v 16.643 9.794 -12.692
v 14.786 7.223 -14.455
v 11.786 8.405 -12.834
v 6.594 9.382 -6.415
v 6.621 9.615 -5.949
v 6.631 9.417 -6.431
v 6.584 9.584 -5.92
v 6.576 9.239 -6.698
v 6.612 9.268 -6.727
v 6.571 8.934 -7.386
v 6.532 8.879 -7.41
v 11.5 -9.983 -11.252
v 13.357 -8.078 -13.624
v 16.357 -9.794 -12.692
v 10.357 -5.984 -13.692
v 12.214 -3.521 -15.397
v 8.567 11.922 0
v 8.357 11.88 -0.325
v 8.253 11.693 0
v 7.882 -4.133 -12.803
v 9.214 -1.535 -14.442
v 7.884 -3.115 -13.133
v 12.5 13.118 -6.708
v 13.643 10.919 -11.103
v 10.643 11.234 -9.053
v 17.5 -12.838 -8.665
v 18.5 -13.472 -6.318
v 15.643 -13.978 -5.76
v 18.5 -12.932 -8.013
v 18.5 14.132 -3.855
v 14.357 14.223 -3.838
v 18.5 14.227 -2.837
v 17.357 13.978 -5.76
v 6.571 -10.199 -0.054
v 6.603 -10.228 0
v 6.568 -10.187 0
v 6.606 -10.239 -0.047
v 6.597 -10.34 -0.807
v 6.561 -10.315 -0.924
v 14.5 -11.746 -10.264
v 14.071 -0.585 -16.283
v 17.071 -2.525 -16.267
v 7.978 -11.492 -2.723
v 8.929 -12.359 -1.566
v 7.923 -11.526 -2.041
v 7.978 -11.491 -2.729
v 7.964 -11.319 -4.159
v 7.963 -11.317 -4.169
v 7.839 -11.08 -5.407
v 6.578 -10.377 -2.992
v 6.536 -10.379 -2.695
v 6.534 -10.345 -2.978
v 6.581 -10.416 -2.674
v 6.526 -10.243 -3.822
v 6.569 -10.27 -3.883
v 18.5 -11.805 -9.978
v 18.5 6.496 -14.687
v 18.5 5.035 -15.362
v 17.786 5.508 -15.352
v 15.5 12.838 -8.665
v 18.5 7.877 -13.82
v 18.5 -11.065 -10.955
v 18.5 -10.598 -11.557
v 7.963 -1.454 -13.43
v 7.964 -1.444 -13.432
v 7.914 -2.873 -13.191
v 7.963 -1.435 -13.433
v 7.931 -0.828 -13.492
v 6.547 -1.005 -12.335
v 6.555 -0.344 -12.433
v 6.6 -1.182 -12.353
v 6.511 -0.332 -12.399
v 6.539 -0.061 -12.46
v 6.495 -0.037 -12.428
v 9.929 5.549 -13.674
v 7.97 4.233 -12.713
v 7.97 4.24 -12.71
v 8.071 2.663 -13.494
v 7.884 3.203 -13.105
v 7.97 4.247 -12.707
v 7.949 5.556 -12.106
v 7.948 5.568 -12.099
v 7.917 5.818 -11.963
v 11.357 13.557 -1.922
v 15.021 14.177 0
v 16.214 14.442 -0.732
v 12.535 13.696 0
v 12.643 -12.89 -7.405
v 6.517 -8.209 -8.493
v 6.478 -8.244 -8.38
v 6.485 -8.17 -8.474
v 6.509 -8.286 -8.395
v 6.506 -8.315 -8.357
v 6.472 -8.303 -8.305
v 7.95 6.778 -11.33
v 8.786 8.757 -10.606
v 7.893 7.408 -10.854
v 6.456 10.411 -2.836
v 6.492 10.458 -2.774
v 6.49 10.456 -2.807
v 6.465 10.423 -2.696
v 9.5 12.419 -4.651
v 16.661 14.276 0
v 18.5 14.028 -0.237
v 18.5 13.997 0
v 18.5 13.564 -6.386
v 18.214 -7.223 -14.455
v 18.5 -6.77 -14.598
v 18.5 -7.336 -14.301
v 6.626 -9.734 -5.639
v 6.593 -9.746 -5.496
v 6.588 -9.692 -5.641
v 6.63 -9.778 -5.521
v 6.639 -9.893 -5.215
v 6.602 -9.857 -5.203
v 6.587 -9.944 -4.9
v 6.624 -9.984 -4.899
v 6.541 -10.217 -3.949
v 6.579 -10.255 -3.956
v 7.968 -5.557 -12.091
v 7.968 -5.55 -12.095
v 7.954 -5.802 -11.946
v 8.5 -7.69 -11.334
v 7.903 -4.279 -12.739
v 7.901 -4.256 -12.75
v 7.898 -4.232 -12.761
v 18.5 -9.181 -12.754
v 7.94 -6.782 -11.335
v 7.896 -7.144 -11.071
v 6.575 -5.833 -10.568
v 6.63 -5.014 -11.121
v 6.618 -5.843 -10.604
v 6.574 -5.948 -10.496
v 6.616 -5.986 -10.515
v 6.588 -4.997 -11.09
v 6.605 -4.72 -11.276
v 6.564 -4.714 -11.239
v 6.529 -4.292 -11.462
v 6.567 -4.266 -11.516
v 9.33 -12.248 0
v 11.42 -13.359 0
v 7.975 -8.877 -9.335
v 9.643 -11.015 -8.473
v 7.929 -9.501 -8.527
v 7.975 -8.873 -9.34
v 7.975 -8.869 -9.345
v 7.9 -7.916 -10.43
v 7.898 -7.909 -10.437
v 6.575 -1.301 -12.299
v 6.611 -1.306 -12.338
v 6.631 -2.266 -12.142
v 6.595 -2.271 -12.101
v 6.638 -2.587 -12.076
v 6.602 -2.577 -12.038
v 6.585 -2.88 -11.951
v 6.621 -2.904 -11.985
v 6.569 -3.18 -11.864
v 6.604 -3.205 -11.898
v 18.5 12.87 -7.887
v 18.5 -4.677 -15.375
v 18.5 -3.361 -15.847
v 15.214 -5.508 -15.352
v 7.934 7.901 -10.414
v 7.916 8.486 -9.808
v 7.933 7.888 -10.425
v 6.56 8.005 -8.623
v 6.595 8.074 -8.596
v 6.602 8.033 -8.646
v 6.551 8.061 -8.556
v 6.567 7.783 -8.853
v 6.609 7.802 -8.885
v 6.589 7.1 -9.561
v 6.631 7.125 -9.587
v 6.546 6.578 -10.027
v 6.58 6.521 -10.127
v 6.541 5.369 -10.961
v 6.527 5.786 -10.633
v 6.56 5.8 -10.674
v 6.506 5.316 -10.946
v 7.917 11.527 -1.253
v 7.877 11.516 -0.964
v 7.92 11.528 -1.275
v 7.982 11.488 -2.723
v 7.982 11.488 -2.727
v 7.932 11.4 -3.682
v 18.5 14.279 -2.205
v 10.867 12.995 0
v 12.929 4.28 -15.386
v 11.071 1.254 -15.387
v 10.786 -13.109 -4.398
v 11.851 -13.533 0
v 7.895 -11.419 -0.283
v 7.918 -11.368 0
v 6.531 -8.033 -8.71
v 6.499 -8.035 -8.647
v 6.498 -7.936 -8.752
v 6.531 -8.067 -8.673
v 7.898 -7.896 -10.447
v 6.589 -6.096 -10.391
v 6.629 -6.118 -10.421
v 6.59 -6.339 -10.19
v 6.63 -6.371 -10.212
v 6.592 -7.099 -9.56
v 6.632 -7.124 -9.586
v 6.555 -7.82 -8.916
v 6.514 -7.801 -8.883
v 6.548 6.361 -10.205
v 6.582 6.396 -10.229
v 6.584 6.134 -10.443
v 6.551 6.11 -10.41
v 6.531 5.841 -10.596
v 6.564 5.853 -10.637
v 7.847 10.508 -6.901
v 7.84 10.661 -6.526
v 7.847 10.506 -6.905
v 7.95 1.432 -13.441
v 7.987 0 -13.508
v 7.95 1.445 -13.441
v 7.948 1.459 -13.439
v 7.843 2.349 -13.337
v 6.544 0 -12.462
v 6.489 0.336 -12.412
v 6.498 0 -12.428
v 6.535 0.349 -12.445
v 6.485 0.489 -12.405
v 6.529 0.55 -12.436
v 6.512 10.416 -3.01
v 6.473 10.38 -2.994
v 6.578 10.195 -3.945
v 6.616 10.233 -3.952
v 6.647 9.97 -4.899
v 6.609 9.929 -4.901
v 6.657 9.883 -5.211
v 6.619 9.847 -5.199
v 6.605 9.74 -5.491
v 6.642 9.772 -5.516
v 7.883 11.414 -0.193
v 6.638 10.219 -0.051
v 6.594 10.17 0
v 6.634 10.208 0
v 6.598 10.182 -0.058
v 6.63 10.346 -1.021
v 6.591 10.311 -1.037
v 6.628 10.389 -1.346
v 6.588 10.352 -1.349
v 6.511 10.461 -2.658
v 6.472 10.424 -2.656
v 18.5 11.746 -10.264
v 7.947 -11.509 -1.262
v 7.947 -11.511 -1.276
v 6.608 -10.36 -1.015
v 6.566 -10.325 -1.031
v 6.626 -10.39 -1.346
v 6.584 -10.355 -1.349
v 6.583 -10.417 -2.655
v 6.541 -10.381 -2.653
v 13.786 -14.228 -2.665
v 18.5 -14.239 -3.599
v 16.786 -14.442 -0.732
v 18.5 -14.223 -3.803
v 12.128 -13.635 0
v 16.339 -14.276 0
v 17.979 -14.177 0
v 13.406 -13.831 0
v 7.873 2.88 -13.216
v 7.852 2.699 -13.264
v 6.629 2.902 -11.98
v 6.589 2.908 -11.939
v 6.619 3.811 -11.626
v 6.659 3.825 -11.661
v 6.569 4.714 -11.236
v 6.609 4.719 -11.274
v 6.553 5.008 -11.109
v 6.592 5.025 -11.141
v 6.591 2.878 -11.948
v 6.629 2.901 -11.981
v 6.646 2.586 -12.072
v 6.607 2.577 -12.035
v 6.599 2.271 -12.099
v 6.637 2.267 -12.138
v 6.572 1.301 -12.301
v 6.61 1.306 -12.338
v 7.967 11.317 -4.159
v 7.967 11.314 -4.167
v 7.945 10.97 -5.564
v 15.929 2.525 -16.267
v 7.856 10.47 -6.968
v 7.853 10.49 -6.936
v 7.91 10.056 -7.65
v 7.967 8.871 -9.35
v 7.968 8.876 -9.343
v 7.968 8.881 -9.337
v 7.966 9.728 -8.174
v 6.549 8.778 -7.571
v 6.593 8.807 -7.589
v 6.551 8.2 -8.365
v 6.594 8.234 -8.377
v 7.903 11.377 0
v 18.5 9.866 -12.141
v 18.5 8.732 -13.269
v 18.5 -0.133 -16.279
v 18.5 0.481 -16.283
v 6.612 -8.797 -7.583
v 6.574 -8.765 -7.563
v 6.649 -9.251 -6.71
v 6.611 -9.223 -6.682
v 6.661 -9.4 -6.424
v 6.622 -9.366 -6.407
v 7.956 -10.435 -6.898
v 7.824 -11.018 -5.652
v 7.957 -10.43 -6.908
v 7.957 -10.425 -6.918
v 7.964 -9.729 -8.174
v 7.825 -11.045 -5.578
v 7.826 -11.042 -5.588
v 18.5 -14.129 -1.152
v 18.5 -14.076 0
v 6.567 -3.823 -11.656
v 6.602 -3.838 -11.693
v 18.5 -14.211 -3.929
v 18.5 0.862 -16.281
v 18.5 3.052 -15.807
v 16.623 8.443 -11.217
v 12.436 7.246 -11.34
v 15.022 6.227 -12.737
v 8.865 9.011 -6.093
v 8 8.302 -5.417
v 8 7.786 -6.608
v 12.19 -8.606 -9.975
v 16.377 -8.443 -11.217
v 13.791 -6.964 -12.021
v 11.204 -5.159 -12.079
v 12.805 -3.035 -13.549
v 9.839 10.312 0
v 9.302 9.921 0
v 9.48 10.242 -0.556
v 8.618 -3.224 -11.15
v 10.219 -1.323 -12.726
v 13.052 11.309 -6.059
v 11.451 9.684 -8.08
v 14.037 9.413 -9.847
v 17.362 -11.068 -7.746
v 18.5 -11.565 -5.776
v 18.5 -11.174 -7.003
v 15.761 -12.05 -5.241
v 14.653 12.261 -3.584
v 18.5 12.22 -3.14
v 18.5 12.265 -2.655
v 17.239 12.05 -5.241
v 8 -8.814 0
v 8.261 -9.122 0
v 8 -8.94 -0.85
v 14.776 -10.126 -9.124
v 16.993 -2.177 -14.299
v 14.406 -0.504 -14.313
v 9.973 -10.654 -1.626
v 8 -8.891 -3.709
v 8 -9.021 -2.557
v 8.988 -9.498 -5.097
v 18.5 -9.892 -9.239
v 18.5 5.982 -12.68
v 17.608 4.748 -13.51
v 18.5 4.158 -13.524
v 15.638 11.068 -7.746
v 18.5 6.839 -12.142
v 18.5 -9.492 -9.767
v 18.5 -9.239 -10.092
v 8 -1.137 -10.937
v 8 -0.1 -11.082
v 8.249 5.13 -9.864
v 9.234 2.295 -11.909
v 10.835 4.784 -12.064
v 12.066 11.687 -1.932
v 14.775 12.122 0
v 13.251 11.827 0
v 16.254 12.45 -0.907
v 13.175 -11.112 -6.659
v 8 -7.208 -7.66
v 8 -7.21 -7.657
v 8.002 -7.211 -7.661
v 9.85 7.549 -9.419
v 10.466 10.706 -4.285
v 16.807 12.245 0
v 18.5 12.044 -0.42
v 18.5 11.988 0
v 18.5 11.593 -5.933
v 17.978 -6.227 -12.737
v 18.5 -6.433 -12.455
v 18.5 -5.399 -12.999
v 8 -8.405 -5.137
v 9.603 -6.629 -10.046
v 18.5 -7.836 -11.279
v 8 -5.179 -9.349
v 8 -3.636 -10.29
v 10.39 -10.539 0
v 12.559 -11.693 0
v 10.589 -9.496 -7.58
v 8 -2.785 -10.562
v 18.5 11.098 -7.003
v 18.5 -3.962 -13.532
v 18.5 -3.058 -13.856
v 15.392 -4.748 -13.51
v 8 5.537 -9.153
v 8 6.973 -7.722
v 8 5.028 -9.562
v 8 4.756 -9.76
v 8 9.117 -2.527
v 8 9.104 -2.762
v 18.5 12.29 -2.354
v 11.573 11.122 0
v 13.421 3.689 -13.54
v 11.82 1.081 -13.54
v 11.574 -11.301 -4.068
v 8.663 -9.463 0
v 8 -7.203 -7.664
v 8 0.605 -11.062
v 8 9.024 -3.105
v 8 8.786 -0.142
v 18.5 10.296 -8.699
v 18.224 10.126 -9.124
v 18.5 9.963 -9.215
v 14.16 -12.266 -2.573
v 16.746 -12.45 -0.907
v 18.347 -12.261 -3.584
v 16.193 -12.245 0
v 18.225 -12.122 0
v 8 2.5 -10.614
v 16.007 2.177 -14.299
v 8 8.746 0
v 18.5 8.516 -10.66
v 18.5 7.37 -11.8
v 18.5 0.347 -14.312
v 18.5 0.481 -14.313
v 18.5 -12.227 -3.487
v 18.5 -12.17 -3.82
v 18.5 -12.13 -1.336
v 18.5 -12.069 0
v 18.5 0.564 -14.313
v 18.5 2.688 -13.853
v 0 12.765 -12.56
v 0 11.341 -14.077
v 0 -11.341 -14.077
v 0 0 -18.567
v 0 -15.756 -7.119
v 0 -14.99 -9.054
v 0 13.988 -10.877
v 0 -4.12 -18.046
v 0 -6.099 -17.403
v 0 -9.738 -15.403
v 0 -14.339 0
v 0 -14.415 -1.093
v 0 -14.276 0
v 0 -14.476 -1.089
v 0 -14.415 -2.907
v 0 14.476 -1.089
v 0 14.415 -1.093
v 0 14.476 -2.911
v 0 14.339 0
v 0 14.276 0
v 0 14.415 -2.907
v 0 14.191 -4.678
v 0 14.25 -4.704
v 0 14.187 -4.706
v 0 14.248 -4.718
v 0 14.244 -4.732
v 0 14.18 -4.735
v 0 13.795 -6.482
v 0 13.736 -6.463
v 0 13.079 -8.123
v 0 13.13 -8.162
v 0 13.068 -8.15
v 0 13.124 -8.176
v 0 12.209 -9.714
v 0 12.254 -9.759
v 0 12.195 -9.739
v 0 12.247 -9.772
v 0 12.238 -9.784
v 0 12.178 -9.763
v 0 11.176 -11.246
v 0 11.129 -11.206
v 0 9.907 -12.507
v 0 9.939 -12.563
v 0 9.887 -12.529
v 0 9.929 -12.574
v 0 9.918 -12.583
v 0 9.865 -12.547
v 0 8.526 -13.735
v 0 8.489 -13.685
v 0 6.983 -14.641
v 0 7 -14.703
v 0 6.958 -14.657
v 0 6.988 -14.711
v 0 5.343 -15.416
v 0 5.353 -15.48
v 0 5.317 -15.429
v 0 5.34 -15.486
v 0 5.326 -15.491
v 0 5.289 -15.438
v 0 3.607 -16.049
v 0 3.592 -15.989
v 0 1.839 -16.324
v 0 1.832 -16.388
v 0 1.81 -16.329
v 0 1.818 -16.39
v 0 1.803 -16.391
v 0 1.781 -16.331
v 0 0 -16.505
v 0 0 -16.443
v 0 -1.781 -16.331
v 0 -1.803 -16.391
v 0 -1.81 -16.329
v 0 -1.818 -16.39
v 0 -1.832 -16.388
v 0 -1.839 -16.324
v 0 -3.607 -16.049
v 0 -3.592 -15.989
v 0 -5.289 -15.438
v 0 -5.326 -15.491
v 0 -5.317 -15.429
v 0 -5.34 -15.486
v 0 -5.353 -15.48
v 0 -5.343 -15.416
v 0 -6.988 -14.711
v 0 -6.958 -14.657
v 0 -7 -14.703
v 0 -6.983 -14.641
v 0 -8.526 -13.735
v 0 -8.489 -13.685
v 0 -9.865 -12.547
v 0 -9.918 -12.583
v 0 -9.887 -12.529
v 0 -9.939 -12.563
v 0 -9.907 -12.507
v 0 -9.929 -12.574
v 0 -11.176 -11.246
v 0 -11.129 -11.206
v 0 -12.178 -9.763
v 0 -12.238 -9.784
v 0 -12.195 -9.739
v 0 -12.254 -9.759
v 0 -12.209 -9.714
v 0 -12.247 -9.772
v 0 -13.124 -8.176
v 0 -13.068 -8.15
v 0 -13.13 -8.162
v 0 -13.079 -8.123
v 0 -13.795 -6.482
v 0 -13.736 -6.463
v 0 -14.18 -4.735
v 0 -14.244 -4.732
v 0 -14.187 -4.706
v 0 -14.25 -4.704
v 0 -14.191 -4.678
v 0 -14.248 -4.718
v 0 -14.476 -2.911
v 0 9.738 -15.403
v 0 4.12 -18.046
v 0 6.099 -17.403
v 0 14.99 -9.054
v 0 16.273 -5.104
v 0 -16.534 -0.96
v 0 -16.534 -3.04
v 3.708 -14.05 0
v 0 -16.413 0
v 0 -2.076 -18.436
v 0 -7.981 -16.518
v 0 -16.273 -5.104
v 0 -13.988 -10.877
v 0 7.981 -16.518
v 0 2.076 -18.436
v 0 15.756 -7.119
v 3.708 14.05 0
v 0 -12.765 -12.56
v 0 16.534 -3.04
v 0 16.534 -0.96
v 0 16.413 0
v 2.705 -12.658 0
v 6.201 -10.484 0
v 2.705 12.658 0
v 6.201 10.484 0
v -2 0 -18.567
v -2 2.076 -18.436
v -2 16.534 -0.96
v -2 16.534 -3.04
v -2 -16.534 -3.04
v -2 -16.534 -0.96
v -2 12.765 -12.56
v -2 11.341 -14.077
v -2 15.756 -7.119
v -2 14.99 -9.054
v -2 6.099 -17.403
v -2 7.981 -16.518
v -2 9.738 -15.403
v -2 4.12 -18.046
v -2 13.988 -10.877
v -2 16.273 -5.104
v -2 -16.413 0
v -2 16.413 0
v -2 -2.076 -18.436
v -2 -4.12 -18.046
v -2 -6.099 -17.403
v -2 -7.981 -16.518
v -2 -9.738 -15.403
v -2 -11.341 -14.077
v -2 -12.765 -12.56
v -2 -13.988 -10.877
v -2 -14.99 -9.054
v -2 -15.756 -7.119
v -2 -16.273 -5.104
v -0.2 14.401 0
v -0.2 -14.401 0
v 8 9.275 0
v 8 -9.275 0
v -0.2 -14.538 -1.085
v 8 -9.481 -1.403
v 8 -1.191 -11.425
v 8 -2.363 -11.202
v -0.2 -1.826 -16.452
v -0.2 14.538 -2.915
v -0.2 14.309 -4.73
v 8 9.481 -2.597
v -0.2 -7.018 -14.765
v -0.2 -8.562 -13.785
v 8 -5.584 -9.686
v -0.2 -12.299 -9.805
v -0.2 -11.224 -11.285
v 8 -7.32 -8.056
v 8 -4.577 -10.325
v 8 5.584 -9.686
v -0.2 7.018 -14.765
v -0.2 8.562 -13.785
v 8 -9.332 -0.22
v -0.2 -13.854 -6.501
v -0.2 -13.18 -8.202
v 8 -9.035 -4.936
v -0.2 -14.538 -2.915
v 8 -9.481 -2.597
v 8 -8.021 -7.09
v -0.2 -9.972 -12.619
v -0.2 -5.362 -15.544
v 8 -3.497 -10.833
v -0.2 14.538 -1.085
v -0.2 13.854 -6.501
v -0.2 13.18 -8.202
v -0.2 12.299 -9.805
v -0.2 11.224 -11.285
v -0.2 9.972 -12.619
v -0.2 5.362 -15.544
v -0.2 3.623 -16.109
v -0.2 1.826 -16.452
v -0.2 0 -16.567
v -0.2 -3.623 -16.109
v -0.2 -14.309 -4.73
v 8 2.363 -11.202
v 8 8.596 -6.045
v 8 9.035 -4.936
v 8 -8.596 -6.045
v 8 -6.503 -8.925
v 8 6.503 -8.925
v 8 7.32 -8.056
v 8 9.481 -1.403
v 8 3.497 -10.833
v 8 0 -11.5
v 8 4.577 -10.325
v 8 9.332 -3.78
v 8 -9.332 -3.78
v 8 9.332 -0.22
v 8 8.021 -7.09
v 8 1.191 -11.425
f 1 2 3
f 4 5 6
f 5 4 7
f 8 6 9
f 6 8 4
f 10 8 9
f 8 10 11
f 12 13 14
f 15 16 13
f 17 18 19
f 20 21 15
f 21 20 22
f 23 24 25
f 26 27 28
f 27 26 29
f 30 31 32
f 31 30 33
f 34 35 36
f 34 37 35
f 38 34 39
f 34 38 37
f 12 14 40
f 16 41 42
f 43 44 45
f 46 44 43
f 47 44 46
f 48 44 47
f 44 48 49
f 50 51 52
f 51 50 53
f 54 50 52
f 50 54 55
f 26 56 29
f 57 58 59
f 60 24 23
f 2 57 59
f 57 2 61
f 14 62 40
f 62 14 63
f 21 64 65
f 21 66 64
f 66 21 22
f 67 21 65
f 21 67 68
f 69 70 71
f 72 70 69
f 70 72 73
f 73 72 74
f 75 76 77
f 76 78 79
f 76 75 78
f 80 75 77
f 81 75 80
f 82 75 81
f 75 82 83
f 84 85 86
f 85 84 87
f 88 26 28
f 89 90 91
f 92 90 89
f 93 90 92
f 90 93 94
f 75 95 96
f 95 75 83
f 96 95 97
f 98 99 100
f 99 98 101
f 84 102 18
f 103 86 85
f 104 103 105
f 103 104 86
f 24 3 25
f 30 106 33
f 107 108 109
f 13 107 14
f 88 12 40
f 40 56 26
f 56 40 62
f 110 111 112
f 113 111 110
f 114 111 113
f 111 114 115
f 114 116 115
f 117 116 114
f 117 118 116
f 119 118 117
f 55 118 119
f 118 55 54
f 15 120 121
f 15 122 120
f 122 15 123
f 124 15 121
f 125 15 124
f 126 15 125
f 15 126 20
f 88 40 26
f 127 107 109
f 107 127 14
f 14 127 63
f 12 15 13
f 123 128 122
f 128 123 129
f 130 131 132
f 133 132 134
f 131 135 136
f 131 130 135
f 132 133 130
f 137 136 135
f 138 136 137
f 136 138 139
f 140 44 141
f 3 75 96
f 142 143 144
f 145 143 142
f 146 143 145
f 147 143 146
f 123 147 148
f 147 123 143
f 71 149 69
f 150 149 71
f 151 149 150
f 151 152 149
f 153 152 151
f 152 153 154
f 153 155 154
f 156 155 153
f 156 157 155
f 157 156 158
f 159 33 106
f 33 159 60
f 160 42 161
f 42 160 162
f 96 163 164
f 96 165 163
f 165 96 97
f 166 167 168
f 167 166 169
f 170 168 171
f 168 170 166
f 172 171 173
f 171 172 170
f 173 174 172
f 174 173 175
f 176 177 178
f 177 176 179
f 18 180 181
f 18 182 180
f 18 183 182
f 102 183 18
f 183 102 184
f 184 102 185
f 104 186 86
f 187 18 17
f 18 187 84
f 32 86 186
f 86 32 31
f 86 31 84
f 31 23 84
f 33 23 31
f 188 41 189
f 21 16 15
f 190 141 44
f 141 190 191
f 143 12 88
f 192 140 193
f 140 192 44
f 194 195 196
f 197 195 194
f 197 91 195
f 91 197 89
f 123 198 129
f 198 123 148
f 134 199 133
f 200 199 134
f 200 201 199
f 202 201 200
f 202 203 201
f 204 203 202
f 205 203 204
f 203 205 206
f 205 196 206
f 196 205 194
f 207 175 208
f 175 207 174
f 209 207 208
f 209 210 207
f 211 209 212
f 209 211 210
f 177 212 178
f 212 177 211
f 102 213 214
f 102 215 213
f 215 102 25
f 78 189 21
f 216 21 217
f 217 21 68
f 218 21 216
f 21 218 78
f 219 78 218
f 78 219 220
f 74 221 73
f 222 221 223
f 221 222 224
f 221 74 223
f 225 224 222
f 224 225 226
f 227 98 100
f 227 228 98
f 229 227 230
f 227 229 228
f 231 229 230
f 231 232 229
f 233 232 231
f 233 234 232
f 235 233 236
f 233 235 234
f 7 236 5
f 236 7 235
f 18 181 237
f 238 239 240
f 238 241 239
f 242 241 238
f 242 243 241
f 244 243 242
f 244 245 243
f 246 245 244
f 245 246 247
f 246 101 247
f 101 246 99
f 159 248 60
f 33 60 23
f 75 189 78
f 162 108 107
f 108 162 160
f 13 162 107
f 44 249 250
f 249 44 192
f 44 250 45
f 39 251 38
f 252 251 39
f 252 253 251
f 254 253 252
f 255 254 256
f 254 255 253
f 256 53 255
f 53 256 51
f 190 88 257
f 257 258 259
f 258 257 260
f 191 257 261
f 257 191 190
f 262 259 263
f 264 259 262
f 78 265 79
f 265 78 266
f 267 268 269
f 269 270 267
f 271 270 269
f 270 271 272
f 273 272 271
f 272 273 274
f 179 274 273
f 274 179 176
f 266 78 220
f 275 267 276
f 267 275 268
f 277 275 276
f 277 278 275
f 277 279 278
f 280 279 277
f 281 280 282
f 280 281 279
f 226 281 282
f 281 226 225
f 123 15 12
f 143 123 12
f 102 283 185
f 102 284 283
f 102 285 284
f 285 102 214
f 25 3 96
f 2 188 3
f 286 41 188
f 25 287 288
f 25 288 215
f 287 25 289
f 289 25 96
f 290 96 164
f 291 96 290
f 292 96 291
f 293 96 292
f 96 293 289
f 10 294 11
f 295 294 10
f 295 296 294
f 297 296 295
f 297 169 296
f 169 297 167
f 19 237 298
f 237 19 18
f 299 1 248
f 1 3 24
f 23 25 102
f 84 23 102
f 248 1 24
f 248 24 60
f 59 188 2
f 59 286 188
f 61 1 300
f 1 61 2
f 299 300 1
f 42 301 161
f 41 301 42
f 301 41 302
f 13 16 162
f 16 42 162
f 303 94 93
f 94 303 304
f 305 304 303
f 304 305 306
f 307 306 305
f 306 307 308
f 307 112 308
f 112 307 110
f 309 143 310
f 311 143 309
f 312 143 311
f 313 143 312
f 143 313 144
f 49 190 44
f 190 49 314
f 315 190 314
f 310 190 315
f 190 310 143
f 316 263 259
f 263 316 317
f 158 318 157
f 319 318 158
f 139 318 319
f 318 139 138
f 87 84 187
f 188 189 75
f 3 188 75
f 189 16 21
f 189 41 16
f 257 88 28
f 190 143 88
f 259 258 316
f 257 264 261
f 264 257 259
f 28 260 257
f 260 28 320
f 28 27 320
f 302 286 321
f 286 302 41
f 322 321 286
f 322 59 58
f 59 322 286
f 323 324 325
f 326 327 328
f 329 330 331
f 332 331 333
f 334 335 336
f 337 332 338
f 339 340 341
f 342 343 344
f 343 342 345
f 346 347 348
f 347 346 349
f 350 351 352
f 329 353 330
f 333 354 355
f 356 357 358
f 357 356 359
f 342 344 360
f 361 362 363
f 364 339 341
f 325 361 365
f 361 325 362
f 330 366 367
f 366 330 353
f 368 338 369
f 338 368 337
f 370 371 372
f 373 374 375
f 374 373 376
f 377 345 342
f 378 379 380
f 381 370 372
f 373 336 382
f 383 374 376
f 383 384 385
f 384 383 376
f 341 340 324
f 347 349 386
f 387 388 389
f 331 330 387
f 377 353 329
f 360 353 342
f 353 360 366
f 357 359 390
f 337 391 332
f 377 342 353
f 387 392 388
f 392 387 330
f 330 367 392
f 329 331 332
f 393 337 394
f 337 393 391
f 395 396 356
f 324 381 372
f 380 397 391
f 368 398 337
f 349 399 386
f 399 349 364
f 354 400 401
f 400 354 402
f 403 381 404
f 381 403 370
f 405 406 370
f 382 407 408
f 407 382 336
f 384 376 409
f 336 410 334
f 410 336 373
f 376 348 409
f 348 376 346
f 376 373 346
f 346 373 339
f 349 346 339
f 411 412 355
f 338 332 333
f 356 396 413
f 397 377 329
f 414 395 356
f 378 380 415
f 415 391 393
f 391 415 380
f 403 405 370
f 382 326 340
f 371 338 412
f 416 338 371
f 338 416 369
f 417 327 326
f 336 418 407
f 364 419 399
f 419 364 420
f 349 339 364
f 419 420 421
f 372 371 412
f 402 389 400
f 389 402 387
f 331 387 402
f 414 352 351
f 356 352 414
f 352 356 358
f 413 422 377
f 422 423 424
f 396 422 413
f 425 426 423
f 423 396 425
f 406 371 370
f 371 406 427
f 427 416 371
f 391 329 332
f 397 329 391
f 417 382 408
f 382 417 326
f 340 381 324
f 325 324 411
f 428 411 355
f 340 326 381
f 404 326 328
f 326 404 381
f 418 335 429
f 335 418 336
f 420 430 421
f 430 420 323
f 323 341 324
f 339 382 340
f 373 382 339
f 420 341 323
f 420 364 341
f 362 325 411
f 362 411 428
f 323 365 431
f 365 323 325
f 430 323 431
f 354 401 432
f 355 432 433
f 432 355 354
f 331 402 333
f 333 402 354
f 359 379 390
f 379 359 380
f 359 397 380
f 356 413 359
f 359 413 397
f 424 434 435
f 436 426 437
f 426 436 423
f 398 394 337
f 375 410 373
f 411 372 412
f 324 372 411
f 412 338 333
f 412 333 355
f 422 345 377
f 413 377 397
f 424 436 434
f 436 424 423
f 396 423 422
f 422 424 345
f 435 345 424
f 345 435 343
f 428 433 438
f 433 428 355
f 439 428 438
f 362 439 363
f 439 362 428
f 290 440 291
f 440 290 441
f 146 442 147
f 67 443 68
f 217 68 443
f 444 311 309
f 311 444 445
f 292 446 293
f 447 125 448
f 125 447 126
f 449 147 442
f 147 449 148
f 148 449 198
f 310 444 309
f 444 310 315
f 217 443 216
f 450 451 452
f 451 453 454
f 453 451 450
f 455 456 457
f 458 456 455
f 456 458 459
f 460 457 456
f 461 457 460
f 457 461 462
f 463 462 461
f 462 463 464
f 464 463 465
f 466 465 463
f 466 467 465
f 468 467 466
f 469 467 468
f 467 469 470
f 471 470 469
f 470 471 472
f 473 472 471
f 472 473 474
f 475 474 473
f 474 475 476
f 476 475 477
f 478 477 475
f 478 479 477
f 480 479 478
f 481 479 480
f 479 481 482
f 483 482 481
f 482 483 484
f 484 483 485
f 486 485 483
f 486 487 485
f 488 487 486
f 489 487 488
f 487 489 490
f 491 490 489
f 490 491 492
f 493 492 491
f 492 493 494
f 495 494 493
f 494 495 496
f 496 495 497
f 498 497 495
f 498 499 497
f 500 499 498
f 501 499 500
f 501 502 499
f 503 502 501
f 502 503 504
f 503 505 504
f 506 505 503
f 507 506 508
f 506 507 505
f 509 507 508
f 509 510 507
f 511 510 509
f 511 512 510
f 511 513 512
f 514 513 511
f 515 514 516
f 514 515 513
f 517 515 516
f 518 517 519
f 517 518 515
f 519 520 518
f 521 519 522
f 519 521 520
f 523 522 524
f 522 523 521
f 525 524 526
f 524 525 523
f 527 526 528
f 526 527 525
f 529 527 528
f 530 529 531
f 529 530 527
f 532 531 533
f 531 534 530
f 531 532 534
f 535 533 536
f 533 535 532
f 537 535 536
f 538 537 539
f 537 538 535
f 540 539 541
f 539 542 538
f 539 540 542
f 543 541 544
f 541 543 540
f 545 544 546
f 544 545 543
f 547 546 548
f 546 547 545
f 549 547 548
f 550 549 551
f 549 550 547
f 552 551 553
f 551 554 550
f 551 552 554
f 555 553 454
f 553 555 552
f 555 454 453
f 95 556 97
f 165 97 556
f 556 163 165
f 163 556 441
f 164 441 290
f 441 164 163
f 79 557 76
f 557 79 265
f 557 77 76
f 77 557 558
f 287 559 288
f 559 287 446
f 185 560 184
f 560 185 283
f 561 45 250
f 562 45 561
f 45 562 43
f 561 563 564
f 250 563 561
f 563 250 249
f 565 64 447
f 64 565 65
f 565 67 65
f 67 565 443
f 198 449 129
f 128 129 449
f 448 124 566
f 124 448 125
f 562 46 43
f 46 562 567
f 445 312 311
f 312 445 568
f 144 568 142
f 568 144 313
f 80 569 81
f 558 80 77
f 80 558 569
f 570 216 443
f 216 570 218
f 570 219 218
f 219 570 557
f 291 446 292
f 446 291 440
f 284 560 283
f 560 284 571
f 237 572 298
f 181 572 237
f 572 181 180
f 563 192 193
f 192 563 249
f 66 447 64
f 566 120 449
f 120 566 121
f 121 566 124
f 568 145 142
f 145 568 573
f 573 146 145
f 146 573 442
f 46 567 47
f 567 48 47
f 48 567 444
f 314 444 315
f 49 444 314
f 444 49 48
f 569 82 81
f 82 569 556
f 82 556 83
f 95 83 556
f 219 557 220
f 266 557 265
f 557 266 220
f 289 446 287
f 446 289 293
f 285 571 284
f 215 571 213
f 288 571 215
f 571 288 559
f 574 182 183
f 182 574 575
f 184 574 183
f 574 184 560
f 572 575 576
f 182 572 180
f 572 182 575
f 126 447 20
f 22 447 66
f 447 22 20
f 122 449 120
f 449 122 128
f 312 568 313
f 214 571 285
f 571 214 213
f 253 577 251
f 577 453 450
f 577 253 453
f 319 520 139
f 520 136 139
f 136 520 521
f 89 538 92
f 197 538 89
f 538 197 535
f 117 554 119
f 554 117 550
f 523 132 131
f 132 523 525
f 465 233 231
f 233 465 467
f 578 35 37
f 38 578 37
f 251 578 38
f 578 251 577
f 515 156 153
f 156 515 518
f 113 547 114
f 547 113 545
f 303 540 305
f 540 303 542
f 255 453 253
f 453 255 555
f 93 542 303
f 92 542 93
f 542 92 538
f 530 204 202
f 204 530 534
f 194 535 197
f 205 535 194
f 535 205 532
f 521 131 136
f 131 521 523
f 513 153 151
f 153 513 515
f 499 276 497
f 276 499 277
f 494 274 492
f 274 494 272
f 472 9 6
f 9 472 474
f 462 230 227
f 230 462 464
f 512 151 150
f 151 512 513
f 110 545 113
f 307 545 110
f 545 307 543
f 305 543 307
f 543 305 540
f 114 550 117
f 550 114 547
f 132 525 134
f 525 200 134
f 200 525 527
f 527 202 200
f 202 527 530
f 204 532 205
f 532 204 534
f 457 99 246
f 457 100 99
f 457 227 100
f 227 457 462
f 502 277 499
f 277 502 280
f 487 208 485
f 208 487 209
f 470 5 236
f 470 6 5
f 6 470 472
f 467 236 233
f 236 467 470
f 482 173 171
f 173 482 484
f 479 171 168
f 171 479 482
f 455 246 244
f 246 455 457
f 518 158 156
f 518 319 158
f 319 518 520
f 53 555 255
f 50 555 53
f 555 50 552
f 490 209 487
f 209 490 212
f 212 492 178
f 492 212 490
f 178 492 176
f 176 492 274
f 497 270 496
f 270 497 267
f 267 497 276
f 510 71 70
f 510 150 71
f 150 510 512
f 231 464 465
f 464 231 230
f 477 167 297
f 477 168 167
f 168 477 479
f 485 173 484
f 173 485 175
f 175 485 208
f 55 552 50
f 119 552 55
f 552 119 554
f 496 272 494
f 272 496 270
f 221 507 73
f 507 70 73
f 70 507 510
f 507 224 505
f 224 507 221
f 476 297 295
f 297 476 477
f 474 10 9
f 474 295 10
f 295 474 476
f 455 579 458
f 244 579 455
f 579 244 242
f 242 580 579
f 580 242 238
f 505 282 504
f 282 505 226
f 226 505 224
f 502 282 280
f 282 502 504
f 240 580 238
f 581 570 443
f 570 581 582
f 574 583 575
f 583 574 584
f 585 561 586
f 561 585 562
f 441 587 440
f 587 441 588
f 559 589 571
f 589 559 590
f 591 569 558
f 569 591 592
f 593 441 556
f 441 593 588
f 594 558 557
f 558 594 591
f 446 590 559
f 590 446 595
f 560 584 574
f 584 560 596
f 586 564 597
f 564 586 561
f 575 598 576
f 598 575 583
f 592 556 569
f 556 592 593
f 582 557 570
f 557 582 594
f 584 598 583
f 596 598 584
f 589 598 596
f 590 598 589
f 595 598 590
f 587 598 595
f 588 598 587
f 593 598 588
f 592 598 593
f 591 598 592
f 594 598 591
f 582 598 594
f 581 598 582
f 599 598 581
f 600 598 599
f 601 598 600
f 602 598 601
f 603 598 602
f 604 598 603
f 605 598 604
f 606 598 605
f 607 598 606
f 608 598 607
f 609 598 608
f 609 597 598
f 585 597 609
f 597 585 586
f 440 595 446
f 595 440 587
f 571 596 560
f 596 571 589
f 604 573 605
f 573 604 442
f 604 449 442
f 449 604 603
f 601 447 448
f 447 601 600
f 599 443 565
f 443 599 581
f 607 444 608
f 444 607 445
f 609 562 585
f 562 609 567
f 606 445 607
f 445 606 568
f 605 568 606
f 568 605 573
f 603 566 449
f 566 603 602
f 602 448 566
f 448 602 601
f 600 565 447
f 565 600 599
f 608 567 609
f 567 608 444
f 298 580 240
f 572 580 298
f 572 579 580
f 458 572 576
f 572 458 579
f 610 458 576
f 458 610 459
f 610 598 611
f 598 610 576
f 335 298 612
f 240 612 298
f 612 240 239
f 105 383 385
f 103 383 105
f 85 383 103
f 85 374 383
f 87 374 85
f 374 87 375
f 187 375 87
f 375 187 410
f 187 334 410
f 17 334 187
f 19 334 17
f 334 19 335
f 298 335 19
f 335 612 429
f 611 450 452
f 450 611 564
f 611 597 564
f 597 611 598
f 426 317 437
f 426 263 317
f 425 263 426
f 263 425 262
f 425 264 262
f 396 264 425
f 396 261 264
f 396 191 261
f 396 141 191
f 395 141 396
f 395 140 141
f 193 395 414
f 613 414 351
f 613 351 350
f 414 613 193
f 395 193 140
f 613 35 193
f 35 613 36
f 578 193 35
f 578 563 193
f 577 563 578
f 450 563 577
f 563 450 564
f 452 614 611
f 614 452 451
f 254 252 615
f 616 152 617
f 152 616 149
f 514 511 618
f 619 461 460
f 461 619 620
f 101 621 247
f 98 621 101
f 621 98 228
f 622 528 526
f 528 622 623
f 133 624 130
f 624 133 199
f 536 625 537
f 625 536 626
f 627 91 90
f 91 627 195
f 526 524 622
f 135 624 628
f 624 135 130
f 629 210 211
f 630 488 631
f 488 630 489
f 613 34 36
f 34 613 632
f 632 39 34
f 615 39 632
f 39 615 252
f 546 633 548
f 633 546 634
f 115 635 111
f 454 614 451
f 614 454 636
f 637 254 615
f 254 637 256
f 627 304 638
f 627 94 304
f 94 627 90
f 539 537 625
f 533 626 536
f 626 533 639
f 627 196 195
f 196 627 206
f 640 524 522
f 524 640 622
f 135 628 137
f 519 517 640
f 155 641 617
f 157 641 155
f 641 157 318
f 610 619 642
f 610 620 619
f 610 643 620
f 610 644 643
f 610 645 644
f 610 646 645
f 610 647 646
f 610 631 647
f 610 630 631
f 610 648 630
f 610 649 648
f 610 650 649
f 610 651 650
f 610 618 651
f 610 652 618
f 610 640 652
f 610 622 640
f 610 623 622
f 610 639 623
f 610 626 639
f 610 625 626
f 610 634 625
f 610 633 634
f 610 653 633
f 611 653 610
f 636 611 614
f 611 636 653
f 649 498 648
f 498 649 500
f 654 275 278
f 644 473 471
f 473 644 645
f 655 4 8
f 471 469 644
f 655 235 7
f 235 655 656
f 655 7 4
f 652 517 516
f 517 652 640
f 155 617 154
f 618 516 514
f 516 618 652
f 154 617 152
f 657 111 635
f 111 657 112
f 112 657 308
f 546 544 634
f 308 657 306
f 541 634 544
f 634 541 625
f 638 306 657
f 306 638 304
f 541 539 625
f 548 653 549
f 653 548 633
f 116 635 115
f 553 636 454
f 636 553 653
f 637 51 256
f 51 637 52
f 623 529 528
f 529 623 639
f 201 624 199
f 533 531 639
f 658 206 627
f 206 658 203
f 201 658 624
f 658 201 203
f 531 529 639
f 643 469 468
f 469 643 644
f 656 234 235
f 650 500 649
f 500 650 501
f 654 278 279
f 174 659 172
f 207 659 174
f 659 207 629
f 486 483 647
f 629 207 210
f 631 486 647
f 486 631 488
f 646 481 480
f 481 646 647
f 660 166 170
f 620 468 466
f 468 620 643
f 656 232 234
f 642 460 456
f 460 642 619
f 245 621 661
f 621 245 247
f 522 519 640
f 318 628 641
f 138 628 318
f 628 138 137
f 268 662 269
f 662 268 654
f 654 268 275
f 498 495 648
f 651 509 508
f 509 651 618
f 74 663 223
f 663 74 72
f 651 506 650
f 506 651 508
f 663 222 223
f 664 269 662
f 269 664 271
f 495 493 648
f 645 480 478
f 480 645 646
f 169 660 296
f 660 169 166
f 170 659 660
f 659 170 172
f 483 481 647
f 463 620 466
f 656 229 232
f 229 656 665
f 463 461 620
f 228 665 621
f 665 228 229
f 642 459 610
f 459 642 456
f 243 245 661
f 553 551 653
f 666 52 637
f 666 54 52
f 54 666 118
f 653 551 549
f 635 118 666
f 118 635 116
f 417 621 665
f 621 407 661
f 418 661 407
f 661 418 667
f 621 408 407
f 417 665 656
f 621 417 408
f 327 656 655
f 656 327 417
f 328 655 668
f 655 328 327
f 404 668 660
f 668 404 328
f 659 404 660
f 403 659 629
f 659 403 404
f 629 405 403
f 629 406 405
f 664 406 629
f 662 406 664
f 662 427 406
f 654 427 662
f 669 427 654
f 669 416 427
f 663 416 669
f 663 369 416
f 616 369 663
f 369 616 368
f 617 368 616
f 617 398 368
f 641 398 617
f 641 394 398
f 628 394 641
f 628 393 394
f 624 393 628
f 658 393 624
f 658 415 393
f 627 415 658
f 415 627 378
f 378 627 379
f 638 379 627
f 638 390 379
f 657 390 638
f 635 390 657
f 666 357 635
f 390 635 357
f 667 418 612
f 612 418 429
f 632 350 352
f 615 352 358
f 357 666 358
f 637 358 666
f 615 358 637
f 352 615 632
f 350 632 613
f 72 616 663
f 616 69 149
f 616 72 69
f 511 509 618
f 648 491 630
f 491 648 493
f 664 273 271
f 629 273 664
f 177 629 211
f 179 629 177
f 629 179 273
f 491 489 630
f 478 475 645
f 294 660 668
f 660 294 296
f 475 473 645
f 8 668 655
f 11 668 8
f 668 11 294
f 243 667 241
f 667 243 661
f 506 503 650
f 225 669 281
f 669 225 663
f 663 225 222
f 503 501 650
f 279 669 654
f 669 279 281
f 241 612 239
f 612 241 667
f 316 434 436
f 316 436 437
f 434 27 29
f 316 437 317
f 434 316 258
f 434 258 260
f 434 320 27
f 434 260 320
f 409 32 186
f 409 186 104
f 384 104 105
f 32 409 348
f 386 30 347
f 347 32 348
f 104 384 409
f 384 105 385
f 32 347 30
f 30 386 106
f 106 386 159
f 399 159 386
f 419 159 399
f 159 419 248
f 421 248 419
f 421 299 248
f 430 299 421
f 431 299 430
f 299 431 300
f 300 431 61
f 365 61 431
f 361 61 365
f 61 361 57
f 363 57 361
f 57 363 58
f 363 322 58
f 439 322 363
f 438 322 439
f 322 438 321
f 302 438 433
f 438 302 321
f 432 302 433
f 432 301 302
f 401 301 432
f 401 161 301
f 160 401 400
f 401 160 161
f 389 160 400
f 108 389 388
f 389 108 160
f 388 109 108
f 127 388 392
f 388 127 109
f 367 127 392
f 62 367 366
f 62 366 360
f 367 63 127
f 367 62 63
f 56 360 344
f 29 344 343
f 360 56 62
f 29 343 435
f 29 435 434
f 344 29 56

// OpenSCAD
// file: ../external/fibsphere/files/fibonacci_sphere.scad
fibonacci_sphere(50,n=10000);
module fibonacci_sphere(r, n, $fn){
    $n = n==undef? ceil((0.5*$fn*$fn)/2) : n;
    hull()
    polyhedron(points = [
        for(i=[-$n:($n-2)])
            r * _pos(i,$n)
    ], faces=[
        for(i=[0:3:2*$n])
            [i,i+1,i+2]
        // for(i=[-$n:3:($n-2)])
        //     [i+$n,i+1+$n,i+2+$n]
    ]);
}

//calculates ith vertex position on a fibonacci unit sphere of 2*n vertices
function _pos(i, n) =
	[cos(_lon(i)) * _xy(_z(i,n)), 
	 sin(_lon(i)) * _xy(_z(i,n)), 
	 _z(i,n)];

function _lon(i) = _golden_angle*i;
function _z(i,n) = 2*i/(2*n+1);
function _xy(z)  = sqrt(1-pow(z,2));

_golden_ratio = 1.61803;
_golden_angle = 360 * _golden_ratio; 
// main file
use <../external/fibsphere/files/fibonacci_sphere.scad>

d1 = 19;
d2 = 26.6;
d = 6;
dh = 8;
wall = 2;
dball = 25;
ball_out = 8.5;
over_x = 2;
over_z = 2;

$fn = 50;
inf = 0.1;

r1 = d1/2;
r2 = d2/2;
rh = (r2 - r1) / d * dh + r1;

module funnel () {
  difference () {
    cylinder(dh, r1 + wall, rh + wall);

    translate([0, 0, -inf])
    cylinder(dh + 2*inf, r1, rh);
  }

  translate([0, 0, dh])
  cylinder(wall, rh + wall, rh + wall);
}

module ball () {
  translate([0, 0, - ball_out])
  difference () {
    fibonacci_sphere(dball/2 + wall, 101);

    fibonacci_sphere(dball/2, 101);
  }
}

module magnet_holder () {
  translate([-wall, 0, 0])
  rotate(-90, [0,1,0])
  translate([-over_x, 0, - dh - wall])
  difference () {
    union () {
        funnel();
        ball();
    }

    translate([over_x, -dball, -dball])
    cube([2*dball, 2*dball, 2*dball]);

    cylinder(dh + 2*inf, r1, rh);

    translate([-dball, -dball, -2*dball - ball_out - over_z])
    cube([2*dball, 2*dball, 2*dball]);
  }
}

magnet_holder();
